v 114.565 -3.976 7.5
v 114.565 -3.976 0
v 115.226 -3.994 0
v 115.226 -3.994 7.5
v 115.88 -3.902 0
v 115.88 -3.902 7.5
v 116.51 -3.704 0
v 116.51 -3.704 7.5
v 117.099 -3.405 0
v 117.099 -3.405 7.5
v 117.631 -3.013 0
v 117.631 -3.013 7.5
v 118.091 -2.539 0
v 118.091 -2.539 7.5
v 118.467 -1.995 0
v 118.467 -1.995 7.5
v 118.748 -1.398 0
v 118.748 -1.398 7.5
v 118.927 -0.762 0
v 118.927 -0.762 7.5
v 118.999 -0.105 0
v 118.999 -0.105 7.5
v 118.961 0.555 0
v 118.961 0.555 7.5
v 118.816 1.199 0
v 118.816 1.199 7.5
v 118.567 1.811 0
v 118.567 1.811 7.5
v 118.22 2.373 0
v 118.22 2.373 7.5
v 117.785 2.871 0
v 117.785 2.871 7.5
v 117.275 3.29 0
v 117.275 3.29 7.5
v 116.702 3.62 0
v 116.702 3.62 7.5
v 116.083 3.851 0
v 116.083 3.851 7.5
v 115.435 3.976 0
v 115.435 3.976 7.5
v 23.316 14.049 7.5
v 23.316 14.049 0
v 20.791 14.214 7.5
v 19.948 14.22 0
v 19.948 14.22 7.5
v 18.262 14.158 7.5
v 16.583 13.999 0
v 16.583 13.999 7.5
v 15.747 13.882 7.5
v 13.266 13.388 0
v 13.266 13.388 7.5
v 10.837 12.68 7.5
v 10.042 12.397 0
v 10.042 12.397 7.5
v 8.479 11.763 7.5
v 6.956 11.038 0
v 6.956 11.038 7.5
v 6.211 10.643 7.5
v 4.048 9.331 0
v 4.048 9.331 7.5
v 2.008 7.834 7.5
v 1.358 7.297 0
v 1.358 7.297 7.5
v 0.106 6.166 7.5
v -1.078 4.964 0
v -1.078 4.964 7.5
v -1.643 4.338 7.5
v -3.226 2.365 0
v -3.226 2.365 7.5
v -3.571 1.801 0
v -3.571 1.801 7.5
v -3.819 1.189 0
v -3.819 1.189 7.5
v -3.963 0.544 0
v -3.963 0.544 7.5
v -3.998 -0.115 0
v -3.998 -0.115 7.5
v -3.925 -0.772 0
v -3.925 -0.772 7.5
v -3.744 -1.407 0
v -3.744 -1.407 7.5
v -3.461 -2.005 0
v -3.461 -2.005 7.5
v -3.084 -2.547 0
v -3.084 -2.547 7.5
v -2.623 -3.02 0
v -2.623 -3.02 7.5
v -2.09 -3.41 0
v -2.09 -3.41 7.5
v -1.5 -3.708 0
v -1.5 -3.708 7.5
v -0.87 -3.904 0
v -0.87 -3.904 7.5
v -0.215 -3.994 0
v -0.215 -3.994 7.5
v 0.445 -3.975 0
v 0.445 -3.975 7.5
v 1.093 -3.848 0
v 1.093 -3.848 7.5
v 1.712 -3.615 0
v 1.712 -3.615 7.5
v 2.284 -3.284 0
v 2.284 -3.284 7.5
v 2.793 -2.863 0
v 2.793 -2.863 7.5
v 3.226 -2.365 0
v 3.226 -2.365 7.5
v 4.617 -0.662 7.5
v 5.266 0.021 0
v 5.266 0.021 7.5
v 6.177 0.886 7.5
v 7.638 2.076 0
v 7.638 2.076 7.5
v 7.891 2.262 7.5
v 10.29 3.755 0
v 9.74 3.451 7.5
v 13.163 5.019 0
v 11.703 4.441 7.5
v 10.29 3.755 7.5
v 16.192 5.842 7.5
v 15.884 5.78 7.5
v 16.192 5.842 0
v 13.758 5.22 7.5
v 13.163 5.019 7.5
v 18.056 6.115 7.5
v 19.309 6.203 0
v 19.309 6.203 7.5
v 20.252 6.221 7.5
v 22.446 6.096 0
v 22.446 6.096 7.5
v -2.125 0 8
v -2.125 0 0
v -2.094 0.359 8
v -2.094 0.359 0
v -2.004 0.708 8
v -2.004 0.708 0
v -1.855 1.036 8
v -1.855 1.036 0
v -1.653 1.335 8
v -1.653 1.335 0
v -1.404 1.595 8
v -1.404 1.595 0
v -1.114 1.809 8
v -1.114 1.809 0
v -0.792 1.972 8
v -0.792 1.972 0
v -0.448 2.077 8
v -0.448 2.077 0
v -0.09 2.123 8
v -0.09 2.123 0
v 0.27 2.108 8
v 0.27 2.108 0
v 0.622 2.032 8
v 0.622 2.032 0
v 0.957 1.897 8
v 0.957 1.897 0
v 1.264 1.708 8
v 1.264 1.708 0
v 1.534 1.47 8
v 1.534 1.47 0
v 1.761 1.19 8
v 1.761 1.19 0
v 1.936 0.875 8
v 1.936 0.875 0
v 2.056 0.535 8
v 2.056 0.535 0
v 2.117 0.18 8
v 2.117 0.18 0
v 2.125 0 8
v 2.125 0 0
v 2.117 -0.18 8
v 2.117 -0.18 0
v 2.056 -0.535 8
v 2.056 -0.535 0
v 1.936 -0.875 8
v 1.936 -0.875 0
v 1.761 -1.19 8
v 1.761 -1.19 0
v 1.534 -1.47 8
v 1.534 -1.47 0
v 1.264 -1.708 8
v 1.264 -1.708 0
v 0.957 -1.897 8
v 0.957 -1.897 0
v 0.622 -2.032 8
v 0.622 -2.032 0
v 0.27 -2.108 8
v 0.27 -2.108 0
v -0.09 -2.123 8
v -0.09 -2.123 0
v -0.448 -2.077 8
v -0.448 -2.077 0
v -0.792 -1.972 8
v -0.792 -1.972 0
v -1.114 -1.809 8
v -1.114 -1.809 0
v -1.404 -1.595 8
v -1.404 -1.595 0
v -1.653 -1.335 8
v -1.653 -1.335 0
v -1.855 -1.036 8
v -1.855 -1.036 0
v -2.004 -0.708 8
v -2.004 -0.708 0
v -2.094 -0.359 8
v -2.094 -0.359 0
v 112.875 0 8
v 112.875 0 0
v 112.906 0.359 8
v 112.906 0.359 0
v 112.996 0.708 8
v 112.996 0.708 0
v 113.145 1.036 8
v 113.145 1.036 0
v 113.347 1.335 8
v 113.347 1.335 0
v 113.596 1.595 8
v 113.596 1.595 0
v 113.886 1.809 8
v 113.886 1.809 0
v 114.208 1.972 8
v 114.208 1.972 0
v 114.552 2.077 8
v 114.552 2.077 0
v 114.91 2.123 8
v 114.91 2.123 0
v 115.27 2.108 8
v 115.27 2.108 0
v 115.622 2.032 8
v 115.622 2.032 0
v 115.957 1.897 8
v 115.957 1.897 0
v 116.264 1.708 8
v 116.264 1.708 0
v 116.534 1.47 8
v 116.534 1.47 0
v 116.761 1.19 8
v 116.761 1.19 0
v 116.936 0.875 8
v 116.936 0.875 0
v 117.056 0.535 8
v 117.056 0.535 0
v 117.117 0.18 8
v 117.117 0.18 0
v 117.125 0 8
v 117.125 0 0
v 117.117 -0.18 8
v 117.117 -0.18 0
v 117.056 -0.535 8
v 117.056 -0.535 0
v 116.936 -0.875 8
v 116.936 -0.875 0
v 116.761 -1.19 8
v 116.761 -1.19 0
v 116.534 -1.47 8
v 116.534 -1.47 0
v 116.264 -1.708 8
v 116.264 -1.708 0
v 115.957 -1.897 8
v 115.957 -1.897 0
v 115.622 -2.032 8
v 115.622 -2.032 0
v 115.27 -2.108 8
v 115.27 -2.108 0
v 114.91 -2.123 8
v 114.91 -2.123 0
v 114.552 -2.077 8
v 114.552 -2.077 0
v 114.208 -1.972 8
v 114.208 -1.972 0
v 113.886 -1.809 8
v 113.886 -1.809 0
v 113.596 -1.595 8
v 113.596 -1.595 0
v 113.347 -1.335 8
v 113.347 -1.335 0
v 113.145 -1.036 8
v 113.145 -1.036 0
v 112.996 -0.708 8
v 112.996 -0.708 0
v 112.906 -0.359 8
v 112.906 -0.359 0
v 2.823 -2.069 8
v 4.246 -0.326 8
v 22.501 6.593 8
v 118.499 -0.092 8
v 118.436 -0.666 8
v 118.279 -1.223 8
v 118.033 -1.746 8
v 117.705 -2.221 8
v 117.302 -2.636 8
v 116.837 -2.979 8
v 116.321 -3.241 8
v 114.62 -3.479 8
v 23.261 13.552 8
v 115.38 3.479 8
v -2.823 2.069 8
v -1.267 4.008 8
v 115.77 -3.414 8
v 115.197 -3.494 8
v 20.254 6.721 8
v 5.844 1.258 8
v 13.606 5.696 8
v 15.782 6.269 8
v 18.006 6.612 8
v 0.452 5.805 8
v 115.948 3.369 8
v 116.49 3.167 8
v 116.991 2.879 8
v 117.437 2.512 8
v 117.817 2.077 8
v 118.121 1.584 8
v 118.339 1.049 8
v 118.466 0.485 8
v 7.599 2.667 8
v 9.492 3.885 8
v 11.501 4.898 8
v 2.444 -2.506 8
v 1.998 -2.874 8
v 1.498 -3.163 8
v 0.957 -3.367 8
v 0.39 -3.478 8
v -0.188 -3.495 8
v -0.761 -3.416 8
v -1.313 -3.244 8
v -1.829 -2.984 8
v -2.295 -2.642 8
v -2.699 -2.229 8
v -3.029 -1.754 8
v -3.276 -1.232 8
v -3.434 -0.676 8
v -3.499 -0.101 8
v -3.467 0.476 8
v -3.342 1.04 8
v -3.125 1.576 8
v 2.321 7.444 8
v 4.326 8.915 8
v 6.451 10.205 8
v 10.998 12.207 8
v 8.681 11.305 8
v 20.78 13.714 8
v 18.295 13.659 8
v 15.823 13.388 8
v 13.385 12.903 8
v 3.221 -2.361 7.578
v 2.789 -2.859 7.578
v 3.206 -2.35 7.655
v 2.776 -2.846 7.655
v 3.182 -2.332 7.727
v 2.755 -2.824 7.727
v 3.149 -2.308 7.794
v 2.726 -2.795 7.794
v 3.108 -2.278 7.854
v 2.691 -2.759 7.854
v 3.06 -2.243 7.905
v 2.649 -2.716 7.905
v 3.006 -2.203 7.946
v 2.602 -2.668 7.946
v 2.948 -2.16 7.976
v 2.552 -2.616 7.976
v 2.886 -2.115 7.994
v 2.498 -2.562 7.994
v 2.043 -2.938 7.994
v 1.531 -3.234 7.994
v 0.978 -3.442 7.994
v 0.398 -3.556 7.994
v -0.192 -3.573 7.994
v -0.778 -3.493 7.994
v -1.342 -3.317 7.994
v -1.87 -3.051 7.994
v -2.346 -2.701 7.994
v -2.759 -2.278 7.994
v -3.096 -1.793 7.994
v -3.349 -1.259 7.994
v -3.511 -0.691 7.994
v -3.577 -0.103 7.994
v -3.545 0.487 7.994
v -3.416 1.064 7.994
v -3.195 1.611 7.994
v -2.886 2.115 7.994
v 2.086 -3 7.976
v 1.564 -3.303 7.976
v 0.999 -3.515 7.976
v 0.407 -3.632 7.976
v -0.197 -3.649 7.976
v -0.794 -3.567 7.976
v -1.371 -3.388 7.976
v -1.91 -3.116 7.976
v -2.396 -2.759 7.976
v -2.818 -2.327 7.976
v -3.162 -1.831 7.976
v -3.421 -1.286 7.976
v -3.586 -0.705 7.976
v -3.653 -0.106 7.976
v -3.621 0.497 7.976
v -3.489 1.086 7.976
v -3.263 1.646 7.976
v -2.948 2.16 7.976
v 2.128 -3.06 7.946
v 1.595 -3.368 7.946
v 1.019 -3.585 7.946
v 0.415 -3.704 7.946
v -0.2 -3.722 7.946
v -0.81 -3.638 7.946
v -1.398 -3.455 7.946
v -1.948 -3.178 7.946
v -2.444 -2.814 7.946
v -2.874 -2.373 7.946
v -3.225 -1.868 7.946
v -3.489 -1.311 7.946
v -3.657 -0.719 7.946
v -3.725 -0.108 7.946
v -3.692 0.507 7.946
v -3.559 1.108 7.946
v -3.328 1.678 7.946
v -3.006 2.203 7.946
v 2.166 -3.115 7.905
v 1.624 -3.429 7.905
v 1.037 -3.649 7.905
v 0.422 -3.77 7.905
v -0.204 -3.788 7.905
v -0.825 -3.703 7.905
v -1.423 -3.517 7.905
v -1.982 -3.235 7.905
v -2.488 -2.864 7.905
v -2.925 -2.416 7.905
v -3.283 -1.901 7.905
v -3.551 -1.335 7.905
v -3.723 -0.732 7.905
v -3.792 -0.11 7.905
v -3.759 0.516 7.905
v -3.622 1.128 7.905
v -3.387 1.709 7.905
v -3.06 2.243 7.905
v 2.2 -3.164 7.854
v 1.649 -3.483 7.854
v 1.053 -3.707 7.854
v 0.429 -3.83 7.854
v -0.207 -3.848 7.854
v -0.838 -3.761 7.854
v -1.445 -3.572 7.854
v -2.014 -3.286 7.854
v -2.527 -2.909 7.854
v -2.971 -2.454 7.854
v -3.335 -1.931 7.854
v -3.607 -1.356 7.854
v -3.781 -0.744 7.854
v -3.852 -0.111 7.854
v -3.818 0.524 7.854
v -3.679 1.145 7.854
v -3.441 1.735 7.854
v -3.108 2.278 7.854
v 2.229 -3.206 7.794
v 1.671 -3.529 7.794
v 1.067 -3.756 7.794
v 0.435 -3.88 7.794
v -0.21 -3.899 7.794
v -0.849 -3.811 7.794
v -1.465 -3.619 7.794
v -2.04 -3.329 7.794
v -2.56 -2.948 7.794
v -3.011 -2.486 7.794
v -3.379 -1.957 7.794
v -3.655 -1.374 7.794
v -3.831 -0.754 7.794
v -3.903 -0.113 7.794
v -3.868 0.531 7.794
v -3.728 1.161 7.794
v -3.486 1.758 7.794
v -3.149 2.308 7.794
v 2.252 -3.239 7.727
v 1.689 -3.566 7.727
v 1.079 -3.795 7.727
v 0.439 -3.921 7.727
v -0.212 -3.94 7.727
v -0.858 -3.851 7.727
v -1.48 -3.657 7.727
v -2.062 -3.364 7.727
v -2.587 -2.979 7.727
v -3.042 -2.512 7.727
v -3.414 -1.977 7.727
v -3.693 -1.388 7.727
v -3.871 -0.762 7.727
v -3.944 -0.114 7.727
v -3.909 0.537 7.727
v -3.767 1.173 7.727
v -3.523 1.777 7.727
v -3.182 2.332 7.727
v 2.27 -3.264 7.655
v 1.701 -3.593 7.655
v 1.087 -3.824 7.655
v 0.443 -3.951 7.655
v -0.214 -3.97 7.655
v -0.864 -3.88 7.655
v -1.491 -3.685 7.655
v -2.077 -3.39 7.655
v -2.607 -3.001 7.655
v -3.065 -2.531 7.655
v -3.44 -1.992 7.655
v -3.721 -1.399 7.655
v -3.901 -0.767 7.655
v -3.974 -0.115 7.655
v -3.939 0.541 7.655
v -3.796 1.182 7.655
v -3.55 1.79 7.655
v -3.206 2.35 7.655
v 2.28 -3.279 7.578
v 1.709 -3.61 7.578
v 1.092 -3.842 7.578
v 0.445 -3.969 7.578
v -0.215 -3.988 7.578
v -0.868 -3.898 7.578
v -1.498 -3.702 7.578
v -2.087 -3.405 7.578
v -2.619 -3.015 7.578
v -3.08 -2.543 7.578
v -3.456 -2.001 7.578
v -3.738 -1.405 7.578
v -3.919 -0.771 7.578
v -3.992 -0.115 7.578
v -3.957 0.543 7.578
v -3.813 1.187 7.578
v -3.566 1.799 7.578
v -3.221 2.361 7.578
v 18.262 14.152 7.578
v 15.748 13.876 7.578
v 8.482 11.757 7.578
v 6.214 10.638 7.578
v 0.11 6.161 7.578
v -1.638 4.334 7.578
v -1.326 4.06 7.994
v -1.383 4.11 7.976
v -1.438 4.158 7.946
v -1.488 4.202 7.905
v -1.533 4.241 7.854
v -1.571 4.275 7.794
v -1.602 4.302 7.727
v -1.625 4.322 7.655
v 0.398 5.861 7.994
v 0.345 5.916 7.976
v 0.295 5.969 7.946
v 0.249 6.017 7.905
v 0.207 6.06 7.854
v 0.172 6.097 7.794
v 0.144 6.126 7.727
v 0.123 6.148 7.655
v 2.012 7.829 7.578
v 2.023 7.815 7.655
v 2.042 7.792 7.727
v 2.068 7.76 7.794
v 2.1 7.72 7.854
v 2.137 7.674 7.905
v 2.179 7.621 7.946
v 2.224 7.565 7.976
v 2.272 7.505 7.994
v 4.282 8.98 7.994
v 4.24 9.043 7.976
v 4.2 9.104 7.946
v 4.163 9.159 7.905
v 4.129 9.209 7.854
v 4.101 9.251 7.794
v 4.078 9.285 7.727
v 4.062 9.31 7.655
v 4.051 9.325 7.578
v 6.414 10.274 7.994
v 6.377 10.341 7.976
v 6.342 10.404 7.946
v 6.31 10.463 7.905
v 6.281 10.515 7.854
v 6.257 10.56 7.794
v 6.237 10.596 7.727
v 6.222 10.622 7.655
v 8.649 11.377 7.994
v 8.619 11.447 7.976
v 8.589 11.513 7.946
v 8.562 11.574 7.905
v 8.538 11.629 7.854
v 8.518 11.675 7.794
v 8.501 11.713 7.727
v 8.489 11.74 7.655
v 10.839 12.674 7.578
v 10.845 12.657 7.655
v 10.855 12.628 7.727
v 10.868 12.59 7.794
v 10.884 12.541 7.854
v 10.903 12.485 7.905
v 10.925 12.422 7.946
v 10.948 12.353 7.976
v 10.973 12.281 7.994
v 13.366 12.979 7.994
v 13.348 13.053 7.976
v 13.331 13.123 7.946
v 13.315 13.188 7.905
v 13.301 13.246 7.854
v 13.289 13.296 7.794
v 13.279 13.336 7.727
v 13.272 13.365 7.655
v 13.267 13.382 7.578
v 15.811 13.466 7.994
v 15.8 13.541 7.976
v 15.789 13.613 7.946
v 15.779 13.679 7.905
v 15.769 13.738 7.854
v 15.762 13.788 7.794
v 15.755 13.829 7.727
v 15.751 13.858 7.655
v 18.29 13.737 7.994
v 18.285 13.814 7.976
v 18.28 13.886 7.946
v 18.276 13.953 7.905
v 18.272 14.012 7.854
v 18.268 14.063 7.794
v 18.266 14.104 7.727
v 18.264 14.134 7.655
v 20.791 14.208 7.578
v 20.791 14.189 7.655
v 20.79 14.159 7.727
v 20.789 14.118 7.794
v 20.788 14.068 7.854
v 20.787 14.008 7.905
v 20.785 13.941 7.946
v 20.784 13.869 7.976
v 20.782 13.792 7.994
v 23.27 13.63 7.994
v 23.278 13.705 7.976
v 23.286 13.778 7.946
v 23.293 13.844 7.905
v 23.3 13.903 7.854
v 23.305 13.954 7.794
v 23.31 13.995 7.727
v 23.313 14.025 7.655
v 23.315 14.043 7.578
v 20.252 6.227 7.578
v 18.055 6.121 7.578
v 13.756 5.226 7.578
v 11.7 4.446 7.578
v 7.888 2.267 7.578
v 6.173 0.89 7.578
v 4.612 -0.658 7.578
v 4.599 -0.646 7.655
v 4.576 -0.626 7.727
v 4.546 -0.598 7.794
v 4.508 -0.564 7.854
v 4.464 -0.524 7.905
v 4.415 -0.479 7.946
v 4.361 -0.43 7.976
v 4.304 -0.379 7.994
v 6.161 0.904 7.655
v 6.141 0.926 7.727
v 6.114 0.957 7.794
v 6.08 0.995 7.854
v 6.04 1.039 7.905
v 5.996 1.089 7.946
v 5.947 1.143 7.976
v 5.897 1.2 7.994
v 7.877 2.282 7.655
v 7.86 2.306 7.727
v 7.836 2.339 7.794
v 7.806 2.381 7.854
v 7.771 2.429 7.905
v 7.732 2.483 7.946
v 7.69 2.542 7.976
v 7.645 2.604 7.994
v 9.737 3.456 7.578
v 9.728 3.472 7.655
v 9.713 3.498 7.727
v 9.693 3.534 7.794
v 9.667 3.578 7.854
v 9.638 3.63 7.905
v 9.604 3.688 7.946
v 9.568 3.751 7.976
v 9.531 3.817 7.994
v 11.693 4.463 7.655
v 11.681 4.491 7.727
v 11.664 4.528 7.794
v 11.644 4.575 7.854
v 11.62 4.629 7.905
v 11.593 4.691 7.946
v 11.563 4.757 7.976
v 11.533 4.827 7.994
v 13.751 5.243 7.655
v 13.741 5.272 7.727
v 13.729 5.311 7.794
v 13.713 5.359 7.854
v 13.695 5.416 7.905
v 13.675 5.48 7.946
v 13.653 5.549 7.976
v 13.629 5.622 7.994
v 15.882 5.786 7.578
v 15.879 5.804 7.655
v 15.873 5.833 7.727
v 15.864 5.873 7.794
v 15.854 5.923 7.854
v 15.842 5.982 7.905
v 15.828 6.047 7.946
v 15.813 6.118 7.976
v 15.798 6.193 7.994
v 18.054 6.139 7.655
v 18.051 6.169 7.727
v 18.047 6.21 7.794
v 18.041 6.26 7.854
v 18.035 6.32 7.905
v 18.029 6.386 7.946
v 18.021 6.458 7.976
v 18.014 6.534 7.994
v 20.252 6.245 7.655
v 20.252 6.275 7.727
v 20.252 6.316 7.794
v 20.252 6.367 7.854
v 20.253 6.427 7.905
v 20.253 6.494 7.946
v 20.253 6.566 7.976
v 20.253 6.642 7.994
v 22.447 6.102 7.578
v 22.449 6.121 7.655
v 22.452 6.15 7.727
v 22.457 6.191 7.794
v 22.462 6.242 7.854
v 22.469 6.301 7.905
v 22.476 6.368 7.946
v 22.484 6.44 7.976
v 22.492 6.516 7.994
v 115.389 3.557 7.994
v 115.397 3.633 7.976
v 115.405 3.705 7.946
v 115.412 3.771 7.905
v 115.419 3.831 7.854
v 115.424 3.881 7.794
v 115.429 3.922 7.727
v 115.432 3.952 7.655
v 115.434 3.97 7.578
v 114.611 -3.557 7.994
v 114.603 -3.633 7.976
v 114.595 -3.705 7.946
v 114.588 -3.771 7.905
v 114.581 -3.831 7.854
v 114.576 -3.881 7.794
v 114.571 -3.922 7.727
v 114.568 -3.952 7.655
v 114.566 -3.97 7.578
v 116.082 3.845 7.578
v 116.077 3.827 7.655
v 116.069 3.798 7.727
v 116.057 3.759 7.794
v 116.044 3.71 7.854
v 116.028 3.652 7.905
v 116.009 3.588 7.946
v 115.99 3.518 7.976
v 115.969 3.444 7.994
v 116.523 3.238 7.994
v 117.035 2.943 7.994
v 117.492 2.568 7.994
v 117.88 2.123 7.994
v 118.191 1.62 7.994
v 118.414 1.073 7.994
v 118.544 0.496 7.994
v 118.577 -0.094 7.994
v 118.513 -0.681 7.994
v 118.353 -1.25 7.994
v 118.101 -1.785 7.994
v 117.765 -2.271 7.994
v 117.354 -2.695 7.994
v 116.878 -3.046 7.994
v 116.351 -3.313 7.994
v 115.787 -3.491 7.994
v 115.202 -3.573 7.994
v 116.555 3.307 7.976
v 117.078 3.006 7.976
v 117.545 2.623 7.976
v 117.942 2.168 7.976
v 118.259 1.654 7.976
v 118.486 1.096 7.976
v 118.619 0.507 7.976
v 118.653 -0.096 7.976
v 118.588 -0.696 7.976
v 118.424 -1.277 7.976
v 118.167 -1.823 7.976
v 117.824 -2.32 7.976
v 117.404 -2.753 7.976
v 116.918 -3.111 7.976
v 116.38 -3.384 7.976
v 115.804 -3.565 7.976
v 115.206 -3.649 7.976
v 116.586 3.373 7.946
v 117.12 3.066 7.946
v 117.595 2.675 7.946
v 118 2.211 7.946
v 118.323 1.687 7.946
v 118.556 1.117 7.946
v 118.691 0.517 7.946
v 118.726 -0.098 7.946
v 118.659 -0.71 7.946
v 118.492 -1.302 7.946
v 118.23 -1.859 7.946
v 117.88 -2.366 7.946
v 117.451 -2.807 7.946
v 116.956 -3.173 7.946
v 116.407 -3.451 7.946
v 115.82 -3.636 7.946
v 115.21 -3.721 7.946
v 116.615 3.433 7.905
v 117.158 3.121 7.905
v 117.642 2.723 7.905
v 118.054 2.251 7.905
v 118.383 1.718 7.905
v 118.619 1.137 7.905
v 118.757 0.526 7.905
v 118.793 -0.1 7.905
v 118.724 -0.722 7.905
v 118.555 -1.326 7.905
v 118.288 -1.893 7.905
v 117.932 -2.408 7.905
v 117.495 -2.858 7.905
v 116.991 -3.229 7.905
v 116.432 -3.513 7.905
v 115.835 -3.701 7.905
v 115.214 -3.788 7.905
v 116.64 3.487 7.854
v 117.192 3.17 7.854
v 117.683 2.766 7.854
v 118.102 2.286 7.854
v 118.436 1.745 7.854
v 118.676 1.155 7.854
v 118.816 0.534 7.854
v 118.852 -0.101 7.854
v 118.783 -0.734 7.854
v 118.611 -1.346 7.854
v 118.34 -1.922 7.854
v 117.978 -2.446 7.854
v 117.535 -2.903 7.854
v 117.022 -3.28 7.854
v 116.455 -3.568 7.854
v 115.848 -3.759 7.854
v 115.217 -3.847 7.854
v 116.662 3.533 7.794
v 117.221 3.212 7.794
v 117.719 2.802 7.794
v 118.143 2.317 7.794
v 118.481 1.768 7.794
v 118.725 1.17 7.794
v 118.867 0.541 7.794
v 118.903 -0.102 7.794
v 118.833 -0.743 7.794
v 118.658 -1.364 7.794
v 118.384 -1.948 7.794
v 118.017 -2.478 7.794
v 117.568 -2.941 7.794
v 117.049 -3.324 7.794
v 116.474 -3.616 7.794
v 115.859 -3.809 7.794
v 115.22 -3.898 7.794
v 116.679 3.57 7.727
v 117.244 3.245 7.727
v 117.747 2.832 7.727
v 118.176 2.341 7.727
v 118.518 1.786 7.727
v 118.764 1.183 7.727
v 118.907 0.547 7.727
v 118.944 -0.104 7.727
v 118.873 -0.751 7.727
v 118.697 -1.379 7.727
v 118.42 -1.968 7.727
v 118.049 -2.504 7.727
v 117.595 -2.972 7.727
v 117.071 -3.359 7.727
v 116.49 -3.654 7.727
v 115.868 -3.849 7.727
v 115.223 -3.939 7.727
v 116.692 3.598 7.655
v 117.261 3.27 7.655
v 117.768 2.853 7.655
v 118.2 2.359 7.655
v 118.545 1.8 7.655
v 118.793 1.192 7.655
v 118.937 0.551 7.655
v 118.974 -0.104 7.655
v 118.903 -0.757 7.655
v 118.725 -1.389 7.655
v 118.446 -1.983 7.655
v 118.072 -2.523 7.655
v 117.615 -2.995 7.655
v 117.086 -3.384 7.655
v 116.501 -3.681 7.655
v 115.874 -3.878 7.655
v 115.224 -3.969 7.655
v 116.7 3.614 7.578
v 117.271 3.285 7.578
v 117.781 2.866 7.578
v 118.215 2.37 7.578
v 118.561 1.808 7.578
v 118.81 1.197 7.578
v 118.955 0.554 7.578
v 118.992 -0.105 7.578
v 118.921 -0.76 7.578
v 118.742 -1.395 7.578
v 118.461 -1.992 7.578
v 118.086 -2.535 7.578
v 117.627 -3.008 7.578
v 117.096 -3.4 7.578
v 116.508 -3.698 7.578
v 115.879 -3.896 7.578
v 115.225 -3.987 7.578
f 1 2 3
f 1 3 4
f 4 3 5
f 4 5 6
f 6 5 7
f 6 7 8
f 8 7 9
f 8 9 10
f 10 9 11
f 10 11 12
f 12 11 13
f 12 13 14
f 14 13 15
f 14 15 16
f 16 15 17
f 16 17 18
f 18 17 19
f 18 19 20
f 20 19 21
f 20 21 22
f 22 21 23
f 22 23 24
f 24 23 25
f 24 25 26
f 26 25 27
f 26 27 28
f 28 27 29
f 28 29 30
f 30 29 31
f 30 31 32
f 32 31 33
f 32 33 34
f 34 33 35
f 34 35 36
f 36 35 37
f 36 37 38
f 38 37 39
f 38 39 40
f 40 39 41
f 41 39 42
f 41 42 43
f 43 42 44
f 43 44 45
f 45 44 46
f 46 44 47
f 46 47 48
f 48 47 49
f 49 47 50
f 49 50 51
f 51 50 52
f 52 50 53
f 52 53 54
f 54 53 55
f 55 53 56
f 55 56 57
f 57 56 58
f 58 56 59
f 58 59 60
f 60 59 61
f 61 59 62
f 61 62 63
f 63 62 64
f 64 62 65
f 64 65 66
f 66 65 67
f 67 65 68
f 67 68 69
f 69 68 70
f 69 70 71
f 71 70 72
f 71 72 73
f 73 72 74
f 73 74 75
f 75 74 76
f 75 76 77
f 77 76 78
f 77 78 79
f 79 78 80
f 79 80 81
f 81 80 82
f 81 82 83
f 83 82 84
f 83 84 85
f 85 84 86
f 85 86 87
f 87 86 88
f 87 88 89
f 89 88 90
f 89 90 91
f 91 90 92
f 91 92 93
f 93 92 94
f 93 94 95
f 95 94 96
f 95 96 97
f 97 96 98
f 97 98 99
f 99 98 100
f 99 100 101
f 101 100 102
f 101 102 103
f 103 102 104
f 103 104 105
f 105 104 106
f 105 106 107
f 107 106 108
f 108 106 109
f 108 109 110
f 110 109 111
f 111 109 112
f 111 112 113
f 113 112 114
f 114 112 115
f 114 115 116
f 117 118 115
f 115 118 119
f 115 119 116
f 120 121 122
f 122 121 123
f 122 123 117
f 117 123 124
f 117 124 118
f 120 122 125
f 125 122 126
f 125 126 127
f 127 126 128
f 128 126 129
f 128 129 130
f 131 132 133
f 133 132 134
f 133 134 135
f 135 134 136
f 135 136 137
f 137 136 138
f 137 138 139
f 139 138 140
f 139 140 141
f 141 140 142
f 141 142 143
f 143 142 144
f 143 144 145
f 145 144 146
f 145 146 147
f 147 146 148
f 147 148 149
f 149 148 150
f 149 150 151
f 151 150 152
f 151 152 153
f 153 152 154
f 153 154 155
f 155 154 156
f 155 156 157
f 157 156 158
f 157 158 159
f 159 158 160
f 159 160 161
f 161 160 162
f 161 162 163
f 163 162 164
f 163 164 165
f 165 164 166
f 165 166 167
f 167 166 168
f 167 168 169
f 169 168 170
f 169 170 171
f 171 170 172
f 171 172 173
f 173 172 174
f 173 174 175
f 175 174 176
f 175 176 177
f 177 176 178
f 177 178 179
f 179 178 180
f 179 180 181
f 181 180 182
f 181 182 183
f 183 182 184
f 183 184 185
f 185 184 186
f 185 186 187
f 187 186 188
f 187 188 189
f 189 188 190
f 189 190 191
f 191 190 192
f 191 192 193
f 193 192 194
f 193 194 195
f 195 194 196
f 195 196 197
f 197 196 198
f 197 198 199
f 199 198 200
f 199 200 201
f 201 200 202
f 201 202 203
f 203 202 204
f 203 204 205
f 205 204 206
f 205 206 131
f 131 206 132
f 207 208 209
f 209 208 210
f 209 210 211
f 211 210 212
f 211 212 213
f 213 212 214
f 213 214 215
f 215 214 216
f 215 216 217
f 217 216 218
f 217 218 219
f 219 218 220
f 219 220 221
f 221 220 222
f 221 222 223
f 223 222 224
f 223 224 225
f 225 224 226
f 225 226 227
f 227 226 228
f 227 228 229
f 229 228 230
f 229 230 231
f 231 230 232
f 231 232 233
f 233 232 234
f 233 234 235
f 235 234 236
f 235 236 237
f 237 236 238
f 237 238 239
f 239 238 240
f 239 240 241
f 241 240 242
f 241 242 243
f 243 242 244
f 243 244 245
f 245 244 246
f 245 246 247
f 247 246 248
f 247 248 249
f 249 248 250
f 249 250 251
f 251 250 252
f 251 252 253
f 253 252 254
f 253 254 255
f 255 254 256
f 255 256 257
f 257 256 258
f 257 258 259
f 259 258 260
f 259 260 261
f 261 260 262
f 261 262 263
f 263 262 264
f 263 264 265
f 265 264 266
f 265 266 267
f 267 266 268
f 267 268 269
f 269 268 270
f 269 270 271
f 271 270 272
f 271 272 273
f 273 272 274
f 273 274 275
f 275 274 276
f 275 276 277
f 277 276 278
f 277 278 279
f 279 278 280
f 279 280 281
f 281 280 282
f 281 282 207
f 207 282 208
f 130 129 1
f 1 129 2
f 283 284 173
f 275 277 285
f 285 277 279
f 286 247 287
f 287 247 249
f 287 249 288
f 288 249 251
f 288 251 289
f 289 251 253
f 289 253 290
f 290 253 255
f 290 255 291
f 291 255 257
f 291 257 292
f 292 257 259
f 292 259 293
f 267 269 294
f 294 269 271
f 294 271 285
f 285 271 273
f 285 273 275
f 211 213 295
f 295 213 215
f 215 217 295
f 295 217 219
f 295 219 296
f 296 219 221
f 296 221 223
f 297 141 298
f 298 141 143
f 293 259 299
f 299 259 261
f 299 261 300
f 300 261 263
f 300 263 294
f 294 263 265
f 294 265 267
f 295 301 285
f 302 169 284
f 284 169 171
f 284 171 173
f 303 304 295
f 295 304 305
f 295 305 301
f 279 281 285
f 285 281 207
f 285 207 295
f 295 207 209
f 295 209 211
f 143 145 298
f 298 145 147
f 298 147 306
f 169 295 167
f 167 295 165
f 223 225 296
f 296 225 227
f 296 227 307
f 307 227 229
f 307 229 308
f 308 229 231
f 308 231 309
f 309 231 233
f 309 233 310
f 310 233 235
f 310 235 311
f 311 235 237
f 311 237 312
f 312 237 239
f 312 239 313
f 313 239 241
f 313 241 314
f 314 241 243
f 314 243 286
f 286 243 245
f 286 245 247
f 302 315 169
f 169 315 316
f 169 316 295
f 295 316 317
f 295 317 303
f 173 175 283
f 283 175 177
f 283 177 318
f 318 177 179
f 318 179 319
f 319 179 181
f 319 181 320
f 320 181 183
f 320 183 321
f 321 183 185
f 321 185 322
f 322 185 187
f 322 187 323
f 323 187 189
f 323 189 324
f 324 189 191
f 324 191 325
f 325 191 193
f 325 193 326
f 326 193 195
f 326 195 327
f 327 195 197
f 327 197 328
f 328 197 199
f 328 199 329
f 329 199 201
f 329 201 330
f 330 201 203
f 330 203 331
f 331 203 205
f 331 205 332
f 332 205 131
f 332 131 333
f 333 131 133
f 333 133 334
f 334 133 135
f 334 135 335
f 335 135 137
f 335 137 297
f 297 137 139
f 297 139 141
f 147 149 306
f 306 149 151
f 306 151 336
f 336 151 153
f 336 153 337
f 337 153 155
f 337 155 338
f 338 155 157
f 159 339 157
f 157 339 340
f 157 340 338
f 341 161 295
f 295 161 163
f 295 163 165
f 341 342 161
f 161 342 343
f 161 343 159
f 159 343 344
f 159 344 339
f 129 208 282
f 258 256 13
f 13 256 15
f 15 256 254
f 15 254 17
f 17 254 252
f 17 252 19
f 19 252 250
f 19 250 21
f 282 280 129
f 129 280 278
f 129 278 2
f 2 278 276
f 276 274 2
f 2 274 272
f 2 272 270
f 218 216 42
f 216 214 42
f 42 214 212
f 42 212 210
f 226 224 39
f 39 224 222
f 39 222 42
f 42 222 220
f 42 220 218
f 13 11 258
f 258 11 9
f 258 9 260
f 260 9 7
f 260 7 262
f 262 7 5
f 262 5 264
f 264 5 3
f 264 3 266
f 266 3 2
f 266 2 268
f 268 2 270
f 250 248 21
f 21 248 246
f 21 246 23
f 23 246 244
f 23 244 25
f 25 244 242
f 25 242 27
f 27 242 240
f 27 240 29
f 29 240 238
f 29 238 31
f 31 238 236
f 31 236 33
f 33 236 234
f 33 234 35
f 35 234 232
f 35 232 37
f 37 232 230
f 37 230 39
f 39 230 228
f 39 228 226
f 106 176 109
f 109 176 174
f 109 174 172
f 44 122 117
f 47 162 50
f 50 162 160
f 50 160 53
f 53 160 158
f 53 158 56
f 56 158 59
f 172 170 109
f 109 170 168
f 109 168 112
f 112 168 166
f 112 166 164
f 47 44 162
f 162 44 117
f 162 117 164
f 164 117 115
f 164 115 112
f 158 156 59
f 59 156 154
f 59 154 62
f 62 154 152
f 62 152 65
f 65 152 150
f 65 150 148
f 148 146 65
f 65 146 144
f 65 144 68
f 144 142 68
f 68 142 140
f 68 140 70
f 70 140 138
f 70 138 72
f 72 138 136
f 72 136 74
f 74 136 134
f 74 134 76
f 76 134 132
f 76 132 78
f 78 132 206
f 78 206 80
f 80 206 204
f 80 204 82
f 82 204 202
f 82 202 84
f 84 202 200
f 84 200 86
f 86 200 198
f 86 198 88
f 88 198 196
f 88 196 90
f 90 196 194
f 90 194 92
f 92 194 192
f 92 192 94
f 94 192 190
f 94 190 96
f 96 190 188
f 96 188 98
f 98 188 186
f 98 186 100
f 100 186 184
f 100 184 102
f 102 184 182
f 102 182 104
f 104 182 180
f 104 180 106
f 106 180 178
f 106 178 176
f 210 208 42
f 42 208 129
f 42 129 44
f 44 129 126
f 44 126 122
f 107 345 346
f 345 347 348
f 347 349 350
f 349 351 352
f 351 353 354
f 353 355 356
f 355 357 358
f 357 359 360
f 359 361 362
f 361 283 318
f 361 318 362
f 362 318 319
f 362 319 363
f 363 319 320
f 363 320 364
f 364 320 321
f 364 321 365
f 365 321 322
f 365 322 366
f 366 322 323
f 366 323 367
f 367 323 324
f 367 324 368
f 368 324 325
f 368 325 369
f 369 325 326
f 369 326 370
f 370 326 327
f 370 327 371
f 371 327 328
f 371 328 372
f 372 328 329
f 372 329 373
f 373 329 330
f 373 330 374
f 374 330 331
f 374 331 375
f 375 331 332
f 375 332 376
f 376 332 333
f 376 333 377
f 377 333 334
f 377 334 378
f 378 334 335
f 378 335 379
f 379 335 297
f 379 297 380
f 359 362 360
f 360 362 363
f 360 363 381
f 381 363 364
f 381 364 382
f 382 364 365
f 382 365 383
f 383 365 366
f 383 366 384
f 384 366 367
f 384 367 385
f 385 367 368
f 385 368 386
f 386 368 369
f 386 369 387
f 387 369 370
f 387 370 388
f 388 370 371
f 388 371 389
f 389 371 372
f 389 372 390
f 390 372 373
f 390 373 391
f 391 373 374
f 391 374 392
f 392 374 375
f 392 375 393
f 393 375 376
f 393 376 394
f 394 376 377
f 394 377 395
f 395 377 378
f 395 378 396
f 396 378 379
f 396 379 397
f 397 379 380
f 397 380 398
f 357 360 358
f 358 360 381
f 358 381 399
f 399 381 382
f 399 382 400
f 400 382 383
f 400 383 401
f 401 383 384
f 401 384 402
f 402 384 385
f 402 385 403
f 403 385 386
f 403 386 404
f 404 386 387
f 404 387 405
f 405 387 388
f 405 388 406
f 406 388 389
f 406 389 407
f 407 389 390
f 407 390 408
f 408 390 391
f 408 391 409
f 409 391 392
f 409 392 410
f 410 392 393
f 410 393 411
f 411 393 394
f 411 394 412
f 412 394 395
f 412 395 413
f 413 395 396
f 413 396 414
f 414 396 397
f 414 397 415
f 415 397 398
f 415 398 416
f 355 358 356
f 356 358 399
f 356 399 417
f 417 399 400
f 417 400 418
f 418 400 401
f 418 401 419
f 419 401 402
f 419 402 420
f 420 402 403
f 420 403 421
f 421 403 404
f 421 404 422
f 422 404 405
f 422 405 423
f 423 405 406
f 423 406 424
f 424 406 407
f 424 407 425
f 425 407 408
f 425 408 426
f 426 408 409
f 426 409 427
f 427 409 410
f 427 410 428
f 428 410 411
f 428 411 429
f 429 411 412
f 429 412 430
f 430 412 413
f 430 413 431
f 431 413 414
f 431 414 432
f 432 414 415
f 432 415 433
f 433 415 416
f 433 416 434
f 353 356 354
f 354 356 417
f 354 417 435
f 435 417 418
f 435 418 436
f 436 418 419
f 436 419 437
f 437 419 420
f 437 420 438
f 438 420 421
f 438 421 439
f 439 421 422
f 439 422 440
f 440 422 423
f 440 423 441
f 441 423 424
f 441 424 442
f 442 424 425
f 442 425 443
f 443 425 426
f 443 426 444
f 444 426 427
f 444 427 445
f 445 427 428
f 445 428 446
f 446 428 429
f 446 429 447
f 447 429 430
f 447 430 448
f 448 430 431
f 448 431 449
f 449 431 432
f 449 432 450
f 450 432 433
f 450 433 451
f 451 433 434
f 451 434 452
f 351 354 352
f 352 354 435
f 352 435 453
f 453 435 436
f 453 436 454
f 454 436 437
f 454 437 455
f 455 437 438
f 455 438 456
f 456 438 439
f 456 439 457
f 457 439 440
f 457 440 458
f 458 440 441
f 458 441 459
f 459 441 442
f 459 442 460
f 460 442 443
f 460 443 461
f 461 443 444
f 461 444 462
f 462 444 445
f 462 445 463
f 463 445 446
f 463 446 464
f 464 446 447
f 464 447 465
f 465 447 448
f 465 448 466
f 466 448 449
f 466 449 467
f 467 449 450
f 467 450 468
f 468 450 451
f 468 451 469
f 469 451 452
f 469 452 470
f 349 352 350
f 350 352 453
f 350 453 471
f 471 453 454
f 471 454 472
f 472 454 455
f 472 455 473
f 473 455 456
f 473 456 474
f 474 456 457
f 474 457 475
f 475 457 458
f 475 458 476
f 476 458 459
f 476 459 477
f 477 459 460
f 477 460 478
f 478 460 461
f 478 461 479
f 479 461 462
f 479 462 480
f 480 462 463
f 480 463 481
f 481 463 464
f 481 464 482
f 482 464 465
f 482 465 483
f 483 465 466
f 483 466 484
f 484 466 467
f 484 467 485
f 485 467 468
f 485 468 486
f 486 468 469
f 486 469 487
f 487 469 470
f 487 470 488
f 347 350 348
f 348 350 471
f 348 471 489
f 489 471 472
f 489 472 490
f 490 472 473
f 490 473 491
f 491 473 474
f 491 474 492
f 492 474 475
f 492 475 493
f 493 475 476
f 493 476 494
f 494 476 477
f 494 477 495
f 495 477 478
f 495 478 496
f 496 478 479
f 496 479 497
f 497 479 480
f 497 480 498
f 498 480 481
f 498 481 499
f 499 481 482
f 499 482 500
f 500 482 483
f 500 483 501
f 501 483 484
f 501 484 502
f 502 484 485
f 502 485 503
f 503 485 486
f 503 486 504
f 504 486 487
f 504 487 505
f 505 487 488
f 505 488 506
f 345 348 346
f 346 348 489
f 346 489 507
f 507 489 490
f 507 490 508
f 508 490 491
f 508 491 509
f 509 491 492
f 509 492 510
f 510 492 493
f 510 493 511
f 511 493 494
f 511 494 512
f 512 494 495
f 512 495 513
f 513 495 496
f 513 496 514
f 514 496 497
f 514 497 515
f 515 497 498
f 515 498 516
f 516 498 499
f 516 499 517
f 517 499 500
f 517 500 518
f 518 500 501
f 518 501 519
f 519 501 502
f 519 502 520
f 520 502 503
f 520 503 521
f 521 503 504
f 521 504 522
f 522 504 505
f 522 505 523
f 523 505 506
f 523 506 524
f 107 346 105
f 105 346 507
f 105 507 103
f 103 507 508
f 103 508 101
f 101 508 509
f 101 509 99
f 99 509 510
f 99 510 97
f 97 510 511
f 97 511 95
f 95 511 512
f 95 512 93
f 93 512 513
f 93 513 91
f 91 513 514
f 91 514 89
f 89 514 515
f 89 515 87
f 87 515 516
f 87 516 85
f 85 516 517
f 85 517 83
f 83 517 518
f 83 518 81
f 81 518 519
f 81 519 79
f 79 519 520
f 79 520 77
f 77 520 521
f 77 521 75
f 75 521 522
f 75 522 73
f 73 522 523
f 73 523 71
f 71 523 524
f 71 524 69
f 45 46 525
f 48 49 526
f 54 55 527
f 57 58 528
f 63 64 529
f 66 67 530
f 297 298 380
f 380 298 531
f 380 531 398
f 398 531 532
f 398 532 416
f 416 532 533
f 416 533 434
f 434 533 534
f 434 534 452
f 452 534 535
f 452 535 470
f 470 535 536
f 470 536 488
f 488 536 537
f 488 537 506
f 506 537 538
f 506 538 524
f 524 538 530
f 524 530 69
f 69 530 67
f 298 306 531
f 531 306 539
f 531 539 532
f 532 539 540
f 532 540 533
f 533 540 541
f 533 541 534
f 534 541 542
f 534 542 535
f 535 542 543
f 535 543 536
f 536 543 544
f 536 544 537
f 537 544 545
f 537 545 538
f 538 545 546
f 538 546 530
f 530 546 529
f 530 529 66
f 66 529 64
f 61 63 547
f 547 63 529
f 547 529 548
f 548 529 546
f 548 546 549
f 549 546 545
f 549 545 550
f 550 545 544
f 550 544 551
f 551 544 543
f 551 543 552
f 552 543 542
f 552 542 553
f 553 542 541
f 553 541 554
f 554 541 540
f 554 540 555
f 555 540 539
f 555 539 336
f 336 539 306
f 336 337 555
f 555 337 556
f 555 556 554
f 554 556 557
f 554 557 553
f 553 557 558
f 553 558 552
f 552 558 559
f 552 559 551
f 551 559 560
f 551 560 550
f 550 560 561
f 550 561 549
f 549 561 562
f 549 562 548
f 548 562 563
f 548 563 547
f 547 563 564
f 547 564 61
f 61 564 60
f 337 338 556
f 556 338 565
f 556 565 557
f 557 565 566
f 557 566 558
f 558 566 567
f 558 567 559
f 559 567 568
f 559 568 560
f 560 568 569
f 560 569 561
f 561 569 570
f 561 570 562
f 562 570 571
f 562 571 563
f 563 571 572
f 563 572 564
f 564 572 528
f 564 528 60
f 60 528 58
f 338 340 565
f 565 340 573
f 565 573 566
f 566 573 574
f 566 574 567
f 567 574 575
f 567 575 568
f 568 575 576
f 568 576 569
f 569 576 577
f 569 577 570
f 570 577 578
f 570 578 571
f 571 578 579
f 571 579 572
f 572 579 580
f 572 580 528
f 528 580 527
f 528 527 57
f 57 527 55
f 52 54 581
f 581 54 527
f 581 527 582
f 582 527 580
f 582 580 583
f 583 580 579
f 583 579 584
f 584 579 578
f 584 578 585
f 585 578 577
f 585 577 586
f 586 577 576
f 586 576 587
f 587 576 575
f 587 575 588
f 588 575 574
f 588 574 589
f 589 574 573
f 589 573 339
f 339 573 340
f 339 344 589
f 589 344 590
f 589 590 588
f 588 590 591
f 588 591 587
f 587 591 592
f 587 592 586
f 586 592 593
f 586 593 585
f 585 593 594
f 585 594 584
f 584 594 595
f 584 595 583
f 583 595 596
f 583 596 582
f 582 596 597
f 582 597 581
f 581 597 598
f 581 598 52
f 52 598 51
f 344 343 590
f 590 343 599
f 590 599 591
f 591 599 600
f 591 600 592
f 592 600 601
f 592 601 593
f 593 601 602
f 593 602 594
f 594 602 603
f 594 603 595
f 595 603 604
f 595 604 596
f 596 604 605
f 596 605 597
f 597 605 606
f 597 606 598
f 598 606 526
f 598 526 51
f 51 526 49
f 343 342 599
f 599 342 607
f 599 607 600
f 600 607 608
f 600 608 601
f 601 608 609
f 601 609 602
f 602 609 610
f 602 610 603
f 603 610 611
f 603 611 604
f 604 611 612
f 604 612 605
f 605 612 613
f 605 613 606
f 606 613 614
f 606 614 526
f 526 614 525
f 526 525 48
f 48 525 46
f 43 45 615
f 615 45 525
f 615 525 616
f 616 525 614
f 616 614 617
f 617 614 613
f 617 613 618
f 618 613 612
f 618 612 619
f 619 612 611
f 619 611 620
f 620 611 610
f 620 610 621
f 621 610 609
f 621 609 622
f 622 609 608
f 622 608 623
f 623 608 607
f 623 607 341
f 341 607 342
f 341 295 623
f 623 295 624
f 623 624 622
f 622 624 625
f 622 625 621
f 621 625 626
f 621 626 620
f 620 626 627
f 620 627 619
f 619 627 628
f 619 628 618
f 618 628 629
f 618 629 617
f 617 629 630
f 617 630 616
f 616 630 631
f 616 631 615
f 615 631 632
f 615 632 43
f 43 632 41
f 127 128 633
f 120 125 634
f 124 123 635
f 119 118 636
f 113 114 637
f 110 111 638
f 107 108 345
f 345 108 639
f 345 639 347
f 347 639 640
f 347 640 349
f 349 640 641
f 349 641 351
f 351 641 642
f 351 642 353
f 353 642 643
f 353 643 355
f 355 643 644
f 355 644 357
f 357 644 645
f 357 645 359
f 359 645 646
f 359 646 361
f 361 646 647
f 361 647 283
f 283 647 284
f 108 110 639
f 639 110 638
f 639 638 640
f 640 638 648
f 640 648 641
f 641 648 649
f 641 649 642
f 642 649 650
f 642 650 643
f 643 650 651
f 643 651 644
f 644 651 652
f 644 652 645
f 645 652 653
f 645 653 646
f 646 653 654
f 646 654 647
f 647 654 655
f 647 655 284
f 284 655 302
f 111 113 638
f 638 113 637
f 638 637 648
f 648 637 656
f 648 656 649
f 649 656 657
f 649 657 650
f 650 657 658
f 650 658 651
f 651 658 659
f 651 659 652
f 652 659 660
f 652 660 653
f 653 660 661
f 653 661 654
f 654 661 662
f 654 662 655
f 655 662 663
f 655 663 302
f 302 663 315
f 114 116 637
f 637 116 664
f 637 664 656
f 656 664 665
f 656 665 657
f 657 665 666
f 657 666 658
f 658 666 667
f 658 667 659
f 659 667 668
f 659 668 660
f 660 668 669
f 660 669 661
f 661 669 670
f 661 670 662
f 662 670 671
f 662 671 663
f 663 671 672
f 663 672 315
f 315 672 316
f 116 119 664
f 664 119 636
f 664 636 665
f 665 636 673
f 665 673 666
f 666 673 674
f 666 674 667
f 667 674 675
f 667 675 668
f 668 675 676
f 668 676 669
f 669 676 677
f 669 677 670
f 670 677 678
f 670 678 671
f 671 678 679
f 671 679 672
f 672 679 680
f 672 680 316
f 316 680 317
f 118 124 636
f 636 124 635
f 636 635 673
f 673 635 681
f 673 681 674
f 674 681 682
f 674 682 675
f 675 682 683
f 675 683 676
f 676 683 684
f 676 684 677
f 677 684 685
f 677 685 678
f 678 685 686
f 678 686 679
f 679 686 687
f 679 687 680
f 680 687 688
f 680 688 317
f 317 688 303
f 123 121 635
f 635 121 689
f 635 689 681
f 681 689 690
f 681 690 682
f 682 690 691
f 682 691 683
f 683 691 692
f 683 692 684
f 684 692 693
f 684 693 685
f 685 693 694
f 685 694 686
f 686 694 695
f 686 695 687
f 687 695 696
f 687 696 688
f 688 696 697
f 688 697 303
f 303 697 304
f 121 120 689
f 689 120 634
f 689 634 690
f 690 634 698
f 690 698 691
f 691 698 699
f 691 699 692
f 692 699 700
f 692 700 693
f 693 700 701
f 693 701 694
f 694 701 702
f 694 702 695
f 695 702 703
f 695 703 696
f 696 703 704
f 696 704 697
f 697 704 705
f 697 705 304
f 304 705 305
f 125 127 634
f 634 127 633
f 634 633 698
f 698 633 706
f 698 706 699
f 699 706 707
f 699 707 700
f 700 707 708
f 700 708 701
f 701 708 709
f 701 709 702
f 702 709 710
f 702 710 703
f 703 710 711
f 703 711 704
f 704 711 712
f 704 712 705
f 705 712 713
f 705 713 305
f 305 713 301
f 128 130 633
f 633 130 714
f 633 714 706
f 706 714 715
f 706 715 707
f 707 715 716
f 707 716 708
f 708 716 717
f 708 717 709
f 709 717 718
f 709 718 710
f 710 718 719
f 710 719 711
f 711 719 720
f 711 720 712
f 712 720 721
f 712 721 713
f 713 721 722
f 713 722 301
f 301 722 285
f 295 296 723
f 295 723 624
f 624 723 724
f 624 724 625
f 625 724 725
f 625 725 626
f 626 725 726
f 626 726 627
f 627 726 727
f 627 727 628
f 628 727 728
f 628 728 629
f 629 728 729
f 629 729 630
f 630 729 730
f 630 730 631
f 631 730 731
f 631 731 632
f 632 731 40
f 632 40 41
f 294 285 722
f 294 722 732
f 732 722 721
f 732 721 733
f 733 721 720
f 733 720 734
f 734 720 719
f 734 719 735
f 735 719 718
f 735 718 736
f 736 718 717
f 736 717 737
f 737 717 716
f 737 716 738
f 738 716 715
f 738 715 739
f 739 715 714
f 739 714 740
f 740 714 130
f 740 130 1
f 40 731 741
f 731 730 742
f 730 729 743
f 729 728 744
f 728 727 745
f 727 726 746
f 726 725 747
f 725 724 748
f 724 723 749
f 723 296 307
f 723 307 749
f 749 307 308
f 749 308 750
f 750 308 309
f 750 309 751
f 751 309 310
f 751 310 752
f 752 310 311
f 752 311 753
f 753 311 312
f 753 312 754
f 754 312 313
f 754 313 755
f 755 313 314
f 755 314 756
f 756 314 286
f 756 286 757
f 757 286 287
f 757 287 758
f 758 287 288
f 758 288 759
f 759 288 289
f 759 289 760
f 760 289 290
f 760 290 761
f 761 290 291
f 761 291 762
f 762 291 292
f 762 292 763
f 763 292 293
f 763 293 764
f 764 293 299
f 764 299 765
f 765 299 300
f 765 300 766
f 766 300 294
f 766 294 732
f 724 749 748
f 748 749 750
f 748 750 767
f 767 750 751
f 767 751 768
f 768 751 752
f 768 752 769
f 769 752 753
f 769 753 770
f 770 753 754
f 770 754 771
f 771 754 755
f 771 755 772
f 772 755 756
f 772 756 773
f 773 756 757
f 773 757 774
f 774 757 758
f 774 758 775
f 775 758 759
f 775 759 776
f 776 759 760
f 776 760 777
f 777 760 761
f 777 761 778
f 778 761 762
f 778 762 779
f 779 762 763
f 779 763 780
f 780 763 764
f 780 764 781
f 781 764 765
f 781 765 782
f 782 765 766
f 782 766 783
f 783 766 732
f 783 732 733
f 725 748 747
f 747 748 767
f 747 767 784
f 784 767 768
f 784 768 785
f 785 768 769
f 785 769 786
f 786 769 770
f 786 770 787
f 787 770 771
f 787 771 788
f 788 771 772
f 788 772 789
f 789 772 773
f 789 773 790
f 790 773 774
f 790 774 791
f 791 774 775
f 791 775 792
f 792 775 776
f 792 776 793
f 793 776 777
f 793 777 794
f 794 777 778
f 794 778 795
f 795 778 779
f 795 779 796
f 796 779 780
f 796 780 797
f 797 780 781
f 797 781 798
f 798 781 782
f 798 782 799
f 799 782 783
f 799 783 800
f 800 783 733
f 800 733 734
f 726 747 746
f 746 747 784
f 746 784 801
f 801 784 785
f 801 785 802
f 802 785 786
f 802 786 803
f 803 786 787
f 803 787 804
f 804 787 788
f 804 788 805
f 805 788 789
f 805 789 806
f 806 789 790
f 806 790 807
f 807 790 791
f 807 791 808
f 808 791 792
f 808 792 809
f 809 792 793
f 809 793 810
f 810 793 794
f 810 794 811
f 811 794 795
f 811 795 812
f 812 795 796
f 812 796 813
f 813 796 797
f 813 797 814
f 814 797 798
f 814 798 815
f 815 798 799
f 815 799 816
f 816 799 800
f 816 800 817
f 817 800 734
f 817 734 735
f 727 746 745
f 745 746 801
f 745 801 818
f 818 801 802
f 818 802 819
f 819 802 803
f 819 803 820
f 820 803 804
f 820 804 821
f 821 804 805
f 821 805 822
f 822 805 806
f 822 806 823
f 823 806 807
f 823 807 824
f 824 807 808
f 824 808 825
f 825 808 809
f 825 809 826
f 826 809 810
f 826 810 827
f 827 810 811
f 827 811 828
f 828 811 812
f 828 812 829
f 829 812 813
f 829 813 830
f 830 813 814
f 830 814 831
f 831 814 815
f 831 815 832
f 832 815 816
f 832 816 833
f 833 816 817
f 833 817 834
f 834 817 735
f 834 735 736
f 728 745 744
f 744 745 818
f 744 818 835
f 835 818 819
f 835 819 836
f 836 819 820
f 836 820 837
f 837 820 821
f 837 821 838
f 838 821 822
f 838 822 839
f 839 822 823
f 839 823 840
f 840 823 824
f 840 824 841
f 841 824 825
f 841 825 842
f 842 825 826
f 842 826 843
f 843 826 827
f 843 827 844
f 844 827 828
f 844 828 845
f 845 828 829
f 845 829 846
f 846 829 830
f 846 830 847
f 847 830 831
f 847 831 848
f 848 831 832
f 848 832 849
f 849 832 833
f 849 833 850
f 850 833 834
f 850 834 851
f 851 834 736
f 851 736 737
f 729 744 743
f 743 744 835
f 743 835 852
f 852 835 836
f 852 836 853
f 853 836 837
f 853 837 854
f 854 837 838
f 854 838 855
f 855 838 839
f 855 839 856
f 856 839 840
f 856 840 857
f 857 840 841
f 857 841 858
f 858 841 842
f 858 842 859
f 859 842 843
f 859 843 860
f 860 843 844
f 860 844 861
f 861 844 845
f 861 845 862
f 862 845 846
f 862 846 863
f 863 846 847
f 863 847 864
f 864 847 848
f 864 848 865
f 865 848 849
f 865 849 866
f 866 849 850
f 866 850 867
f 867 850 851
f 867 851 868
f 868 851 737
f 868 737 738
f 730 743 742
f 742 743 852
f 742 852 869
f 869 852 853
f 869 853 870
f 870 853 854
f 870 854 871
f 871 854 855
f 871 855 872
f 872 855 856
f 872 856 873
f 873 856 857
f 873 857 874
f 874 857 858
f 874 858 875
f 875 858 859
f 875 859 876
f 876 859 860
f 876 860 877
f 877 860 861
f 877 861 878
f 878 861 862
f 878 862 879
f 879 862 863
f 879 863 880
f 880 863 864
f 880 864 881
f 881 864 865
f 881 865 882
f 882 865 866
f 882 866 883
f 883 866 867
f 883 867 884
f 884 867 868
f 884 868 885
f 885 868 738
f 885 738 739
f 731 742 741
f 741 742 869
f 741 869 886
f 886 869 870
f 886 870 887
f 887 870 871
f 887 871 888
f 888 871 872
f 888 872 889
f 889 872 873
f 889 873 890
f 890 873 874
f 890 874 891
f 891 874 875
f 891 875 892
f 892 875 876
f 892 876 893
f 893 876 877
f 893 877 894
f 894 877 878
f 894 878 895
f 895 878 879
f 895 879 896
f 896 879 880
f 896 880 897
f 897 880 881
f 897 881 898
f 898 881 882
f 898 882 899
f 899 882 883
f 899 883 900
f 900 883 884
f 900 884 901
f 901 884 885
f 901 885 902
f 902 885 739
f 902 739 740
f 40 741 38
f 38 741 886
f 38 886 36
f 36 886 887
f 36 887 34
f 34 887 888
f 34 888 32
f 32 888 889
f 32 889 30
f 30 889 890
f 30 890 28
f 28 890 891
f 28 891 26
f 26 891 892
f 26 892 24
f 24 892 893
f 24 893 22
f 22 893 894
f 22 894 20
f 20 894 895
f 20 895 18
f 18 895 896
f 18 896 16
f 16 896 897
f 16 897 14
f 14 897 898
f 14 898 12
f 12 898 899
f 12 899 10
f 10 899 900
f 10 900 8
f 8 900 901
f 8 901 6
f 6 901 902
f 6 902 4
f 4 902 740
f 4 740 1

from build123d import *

# Parameters (mm, degrees)
SKETCH2_R           = 2.125
BOSS_EXTRUDE1_DEPTH = 8
FILLET2_R           = 0.5


with BuildPart() as part:
    # Sketch2 → Boss-Extrude1 (new body)
    with BuildSketch(Plane.XY):
        with BuildLine():
            Line((22.446269754, 6.096308238), (114.565217391, -3.976300301))
            ThreePointArc((114.565217391, -3.976300301), (118.976300301, -0.434782609), (115.434782609, 3.976300301))
            Line((115.434782609, 3.976300301), (23.315834971, 14.04890884))
            ThreePointArc((23.315834971, 14.04890884), (8.479435153, 11.762752399), (-3.226185769, 2.364682935))
            ThreePointArc((-3.226185769, 2.364682935), (-2.364682935, -3.226185769), (3.226185769, -2.364682935))
            ThreePointArc((3.226185769, -2.364682935), (11.702669886, 4.440815643), (22.446269754, 6.096308238))
        make_face()
        Circle(SKETCH2_R, mode=Mode.SUBTRACT)
        with Locations((115, 0)):
            Circle(SKETCH2_R, mode=Mode.SUBTRACT)
    extrude(amount=BOSS_EXTRUDE1_DEPTH)

    # Fillet2
    fillet2_edges = [part.edges().sort_by_distance(p)[0] for p in [
        (118.976300301, -0.434782609, 8),
        (69.37530879, 9.01260457, 8),
        (8.479435153, 11.762752399, 8),
        (-2.364682935, -3.226185769, 8),
        (11.702669886, 4.440815643, 8),
        (68.505743573, 1.060003968, 8),
    ]]
    fillet(fillet2_edges, radius=FILLET2_R)


solid = part.part
